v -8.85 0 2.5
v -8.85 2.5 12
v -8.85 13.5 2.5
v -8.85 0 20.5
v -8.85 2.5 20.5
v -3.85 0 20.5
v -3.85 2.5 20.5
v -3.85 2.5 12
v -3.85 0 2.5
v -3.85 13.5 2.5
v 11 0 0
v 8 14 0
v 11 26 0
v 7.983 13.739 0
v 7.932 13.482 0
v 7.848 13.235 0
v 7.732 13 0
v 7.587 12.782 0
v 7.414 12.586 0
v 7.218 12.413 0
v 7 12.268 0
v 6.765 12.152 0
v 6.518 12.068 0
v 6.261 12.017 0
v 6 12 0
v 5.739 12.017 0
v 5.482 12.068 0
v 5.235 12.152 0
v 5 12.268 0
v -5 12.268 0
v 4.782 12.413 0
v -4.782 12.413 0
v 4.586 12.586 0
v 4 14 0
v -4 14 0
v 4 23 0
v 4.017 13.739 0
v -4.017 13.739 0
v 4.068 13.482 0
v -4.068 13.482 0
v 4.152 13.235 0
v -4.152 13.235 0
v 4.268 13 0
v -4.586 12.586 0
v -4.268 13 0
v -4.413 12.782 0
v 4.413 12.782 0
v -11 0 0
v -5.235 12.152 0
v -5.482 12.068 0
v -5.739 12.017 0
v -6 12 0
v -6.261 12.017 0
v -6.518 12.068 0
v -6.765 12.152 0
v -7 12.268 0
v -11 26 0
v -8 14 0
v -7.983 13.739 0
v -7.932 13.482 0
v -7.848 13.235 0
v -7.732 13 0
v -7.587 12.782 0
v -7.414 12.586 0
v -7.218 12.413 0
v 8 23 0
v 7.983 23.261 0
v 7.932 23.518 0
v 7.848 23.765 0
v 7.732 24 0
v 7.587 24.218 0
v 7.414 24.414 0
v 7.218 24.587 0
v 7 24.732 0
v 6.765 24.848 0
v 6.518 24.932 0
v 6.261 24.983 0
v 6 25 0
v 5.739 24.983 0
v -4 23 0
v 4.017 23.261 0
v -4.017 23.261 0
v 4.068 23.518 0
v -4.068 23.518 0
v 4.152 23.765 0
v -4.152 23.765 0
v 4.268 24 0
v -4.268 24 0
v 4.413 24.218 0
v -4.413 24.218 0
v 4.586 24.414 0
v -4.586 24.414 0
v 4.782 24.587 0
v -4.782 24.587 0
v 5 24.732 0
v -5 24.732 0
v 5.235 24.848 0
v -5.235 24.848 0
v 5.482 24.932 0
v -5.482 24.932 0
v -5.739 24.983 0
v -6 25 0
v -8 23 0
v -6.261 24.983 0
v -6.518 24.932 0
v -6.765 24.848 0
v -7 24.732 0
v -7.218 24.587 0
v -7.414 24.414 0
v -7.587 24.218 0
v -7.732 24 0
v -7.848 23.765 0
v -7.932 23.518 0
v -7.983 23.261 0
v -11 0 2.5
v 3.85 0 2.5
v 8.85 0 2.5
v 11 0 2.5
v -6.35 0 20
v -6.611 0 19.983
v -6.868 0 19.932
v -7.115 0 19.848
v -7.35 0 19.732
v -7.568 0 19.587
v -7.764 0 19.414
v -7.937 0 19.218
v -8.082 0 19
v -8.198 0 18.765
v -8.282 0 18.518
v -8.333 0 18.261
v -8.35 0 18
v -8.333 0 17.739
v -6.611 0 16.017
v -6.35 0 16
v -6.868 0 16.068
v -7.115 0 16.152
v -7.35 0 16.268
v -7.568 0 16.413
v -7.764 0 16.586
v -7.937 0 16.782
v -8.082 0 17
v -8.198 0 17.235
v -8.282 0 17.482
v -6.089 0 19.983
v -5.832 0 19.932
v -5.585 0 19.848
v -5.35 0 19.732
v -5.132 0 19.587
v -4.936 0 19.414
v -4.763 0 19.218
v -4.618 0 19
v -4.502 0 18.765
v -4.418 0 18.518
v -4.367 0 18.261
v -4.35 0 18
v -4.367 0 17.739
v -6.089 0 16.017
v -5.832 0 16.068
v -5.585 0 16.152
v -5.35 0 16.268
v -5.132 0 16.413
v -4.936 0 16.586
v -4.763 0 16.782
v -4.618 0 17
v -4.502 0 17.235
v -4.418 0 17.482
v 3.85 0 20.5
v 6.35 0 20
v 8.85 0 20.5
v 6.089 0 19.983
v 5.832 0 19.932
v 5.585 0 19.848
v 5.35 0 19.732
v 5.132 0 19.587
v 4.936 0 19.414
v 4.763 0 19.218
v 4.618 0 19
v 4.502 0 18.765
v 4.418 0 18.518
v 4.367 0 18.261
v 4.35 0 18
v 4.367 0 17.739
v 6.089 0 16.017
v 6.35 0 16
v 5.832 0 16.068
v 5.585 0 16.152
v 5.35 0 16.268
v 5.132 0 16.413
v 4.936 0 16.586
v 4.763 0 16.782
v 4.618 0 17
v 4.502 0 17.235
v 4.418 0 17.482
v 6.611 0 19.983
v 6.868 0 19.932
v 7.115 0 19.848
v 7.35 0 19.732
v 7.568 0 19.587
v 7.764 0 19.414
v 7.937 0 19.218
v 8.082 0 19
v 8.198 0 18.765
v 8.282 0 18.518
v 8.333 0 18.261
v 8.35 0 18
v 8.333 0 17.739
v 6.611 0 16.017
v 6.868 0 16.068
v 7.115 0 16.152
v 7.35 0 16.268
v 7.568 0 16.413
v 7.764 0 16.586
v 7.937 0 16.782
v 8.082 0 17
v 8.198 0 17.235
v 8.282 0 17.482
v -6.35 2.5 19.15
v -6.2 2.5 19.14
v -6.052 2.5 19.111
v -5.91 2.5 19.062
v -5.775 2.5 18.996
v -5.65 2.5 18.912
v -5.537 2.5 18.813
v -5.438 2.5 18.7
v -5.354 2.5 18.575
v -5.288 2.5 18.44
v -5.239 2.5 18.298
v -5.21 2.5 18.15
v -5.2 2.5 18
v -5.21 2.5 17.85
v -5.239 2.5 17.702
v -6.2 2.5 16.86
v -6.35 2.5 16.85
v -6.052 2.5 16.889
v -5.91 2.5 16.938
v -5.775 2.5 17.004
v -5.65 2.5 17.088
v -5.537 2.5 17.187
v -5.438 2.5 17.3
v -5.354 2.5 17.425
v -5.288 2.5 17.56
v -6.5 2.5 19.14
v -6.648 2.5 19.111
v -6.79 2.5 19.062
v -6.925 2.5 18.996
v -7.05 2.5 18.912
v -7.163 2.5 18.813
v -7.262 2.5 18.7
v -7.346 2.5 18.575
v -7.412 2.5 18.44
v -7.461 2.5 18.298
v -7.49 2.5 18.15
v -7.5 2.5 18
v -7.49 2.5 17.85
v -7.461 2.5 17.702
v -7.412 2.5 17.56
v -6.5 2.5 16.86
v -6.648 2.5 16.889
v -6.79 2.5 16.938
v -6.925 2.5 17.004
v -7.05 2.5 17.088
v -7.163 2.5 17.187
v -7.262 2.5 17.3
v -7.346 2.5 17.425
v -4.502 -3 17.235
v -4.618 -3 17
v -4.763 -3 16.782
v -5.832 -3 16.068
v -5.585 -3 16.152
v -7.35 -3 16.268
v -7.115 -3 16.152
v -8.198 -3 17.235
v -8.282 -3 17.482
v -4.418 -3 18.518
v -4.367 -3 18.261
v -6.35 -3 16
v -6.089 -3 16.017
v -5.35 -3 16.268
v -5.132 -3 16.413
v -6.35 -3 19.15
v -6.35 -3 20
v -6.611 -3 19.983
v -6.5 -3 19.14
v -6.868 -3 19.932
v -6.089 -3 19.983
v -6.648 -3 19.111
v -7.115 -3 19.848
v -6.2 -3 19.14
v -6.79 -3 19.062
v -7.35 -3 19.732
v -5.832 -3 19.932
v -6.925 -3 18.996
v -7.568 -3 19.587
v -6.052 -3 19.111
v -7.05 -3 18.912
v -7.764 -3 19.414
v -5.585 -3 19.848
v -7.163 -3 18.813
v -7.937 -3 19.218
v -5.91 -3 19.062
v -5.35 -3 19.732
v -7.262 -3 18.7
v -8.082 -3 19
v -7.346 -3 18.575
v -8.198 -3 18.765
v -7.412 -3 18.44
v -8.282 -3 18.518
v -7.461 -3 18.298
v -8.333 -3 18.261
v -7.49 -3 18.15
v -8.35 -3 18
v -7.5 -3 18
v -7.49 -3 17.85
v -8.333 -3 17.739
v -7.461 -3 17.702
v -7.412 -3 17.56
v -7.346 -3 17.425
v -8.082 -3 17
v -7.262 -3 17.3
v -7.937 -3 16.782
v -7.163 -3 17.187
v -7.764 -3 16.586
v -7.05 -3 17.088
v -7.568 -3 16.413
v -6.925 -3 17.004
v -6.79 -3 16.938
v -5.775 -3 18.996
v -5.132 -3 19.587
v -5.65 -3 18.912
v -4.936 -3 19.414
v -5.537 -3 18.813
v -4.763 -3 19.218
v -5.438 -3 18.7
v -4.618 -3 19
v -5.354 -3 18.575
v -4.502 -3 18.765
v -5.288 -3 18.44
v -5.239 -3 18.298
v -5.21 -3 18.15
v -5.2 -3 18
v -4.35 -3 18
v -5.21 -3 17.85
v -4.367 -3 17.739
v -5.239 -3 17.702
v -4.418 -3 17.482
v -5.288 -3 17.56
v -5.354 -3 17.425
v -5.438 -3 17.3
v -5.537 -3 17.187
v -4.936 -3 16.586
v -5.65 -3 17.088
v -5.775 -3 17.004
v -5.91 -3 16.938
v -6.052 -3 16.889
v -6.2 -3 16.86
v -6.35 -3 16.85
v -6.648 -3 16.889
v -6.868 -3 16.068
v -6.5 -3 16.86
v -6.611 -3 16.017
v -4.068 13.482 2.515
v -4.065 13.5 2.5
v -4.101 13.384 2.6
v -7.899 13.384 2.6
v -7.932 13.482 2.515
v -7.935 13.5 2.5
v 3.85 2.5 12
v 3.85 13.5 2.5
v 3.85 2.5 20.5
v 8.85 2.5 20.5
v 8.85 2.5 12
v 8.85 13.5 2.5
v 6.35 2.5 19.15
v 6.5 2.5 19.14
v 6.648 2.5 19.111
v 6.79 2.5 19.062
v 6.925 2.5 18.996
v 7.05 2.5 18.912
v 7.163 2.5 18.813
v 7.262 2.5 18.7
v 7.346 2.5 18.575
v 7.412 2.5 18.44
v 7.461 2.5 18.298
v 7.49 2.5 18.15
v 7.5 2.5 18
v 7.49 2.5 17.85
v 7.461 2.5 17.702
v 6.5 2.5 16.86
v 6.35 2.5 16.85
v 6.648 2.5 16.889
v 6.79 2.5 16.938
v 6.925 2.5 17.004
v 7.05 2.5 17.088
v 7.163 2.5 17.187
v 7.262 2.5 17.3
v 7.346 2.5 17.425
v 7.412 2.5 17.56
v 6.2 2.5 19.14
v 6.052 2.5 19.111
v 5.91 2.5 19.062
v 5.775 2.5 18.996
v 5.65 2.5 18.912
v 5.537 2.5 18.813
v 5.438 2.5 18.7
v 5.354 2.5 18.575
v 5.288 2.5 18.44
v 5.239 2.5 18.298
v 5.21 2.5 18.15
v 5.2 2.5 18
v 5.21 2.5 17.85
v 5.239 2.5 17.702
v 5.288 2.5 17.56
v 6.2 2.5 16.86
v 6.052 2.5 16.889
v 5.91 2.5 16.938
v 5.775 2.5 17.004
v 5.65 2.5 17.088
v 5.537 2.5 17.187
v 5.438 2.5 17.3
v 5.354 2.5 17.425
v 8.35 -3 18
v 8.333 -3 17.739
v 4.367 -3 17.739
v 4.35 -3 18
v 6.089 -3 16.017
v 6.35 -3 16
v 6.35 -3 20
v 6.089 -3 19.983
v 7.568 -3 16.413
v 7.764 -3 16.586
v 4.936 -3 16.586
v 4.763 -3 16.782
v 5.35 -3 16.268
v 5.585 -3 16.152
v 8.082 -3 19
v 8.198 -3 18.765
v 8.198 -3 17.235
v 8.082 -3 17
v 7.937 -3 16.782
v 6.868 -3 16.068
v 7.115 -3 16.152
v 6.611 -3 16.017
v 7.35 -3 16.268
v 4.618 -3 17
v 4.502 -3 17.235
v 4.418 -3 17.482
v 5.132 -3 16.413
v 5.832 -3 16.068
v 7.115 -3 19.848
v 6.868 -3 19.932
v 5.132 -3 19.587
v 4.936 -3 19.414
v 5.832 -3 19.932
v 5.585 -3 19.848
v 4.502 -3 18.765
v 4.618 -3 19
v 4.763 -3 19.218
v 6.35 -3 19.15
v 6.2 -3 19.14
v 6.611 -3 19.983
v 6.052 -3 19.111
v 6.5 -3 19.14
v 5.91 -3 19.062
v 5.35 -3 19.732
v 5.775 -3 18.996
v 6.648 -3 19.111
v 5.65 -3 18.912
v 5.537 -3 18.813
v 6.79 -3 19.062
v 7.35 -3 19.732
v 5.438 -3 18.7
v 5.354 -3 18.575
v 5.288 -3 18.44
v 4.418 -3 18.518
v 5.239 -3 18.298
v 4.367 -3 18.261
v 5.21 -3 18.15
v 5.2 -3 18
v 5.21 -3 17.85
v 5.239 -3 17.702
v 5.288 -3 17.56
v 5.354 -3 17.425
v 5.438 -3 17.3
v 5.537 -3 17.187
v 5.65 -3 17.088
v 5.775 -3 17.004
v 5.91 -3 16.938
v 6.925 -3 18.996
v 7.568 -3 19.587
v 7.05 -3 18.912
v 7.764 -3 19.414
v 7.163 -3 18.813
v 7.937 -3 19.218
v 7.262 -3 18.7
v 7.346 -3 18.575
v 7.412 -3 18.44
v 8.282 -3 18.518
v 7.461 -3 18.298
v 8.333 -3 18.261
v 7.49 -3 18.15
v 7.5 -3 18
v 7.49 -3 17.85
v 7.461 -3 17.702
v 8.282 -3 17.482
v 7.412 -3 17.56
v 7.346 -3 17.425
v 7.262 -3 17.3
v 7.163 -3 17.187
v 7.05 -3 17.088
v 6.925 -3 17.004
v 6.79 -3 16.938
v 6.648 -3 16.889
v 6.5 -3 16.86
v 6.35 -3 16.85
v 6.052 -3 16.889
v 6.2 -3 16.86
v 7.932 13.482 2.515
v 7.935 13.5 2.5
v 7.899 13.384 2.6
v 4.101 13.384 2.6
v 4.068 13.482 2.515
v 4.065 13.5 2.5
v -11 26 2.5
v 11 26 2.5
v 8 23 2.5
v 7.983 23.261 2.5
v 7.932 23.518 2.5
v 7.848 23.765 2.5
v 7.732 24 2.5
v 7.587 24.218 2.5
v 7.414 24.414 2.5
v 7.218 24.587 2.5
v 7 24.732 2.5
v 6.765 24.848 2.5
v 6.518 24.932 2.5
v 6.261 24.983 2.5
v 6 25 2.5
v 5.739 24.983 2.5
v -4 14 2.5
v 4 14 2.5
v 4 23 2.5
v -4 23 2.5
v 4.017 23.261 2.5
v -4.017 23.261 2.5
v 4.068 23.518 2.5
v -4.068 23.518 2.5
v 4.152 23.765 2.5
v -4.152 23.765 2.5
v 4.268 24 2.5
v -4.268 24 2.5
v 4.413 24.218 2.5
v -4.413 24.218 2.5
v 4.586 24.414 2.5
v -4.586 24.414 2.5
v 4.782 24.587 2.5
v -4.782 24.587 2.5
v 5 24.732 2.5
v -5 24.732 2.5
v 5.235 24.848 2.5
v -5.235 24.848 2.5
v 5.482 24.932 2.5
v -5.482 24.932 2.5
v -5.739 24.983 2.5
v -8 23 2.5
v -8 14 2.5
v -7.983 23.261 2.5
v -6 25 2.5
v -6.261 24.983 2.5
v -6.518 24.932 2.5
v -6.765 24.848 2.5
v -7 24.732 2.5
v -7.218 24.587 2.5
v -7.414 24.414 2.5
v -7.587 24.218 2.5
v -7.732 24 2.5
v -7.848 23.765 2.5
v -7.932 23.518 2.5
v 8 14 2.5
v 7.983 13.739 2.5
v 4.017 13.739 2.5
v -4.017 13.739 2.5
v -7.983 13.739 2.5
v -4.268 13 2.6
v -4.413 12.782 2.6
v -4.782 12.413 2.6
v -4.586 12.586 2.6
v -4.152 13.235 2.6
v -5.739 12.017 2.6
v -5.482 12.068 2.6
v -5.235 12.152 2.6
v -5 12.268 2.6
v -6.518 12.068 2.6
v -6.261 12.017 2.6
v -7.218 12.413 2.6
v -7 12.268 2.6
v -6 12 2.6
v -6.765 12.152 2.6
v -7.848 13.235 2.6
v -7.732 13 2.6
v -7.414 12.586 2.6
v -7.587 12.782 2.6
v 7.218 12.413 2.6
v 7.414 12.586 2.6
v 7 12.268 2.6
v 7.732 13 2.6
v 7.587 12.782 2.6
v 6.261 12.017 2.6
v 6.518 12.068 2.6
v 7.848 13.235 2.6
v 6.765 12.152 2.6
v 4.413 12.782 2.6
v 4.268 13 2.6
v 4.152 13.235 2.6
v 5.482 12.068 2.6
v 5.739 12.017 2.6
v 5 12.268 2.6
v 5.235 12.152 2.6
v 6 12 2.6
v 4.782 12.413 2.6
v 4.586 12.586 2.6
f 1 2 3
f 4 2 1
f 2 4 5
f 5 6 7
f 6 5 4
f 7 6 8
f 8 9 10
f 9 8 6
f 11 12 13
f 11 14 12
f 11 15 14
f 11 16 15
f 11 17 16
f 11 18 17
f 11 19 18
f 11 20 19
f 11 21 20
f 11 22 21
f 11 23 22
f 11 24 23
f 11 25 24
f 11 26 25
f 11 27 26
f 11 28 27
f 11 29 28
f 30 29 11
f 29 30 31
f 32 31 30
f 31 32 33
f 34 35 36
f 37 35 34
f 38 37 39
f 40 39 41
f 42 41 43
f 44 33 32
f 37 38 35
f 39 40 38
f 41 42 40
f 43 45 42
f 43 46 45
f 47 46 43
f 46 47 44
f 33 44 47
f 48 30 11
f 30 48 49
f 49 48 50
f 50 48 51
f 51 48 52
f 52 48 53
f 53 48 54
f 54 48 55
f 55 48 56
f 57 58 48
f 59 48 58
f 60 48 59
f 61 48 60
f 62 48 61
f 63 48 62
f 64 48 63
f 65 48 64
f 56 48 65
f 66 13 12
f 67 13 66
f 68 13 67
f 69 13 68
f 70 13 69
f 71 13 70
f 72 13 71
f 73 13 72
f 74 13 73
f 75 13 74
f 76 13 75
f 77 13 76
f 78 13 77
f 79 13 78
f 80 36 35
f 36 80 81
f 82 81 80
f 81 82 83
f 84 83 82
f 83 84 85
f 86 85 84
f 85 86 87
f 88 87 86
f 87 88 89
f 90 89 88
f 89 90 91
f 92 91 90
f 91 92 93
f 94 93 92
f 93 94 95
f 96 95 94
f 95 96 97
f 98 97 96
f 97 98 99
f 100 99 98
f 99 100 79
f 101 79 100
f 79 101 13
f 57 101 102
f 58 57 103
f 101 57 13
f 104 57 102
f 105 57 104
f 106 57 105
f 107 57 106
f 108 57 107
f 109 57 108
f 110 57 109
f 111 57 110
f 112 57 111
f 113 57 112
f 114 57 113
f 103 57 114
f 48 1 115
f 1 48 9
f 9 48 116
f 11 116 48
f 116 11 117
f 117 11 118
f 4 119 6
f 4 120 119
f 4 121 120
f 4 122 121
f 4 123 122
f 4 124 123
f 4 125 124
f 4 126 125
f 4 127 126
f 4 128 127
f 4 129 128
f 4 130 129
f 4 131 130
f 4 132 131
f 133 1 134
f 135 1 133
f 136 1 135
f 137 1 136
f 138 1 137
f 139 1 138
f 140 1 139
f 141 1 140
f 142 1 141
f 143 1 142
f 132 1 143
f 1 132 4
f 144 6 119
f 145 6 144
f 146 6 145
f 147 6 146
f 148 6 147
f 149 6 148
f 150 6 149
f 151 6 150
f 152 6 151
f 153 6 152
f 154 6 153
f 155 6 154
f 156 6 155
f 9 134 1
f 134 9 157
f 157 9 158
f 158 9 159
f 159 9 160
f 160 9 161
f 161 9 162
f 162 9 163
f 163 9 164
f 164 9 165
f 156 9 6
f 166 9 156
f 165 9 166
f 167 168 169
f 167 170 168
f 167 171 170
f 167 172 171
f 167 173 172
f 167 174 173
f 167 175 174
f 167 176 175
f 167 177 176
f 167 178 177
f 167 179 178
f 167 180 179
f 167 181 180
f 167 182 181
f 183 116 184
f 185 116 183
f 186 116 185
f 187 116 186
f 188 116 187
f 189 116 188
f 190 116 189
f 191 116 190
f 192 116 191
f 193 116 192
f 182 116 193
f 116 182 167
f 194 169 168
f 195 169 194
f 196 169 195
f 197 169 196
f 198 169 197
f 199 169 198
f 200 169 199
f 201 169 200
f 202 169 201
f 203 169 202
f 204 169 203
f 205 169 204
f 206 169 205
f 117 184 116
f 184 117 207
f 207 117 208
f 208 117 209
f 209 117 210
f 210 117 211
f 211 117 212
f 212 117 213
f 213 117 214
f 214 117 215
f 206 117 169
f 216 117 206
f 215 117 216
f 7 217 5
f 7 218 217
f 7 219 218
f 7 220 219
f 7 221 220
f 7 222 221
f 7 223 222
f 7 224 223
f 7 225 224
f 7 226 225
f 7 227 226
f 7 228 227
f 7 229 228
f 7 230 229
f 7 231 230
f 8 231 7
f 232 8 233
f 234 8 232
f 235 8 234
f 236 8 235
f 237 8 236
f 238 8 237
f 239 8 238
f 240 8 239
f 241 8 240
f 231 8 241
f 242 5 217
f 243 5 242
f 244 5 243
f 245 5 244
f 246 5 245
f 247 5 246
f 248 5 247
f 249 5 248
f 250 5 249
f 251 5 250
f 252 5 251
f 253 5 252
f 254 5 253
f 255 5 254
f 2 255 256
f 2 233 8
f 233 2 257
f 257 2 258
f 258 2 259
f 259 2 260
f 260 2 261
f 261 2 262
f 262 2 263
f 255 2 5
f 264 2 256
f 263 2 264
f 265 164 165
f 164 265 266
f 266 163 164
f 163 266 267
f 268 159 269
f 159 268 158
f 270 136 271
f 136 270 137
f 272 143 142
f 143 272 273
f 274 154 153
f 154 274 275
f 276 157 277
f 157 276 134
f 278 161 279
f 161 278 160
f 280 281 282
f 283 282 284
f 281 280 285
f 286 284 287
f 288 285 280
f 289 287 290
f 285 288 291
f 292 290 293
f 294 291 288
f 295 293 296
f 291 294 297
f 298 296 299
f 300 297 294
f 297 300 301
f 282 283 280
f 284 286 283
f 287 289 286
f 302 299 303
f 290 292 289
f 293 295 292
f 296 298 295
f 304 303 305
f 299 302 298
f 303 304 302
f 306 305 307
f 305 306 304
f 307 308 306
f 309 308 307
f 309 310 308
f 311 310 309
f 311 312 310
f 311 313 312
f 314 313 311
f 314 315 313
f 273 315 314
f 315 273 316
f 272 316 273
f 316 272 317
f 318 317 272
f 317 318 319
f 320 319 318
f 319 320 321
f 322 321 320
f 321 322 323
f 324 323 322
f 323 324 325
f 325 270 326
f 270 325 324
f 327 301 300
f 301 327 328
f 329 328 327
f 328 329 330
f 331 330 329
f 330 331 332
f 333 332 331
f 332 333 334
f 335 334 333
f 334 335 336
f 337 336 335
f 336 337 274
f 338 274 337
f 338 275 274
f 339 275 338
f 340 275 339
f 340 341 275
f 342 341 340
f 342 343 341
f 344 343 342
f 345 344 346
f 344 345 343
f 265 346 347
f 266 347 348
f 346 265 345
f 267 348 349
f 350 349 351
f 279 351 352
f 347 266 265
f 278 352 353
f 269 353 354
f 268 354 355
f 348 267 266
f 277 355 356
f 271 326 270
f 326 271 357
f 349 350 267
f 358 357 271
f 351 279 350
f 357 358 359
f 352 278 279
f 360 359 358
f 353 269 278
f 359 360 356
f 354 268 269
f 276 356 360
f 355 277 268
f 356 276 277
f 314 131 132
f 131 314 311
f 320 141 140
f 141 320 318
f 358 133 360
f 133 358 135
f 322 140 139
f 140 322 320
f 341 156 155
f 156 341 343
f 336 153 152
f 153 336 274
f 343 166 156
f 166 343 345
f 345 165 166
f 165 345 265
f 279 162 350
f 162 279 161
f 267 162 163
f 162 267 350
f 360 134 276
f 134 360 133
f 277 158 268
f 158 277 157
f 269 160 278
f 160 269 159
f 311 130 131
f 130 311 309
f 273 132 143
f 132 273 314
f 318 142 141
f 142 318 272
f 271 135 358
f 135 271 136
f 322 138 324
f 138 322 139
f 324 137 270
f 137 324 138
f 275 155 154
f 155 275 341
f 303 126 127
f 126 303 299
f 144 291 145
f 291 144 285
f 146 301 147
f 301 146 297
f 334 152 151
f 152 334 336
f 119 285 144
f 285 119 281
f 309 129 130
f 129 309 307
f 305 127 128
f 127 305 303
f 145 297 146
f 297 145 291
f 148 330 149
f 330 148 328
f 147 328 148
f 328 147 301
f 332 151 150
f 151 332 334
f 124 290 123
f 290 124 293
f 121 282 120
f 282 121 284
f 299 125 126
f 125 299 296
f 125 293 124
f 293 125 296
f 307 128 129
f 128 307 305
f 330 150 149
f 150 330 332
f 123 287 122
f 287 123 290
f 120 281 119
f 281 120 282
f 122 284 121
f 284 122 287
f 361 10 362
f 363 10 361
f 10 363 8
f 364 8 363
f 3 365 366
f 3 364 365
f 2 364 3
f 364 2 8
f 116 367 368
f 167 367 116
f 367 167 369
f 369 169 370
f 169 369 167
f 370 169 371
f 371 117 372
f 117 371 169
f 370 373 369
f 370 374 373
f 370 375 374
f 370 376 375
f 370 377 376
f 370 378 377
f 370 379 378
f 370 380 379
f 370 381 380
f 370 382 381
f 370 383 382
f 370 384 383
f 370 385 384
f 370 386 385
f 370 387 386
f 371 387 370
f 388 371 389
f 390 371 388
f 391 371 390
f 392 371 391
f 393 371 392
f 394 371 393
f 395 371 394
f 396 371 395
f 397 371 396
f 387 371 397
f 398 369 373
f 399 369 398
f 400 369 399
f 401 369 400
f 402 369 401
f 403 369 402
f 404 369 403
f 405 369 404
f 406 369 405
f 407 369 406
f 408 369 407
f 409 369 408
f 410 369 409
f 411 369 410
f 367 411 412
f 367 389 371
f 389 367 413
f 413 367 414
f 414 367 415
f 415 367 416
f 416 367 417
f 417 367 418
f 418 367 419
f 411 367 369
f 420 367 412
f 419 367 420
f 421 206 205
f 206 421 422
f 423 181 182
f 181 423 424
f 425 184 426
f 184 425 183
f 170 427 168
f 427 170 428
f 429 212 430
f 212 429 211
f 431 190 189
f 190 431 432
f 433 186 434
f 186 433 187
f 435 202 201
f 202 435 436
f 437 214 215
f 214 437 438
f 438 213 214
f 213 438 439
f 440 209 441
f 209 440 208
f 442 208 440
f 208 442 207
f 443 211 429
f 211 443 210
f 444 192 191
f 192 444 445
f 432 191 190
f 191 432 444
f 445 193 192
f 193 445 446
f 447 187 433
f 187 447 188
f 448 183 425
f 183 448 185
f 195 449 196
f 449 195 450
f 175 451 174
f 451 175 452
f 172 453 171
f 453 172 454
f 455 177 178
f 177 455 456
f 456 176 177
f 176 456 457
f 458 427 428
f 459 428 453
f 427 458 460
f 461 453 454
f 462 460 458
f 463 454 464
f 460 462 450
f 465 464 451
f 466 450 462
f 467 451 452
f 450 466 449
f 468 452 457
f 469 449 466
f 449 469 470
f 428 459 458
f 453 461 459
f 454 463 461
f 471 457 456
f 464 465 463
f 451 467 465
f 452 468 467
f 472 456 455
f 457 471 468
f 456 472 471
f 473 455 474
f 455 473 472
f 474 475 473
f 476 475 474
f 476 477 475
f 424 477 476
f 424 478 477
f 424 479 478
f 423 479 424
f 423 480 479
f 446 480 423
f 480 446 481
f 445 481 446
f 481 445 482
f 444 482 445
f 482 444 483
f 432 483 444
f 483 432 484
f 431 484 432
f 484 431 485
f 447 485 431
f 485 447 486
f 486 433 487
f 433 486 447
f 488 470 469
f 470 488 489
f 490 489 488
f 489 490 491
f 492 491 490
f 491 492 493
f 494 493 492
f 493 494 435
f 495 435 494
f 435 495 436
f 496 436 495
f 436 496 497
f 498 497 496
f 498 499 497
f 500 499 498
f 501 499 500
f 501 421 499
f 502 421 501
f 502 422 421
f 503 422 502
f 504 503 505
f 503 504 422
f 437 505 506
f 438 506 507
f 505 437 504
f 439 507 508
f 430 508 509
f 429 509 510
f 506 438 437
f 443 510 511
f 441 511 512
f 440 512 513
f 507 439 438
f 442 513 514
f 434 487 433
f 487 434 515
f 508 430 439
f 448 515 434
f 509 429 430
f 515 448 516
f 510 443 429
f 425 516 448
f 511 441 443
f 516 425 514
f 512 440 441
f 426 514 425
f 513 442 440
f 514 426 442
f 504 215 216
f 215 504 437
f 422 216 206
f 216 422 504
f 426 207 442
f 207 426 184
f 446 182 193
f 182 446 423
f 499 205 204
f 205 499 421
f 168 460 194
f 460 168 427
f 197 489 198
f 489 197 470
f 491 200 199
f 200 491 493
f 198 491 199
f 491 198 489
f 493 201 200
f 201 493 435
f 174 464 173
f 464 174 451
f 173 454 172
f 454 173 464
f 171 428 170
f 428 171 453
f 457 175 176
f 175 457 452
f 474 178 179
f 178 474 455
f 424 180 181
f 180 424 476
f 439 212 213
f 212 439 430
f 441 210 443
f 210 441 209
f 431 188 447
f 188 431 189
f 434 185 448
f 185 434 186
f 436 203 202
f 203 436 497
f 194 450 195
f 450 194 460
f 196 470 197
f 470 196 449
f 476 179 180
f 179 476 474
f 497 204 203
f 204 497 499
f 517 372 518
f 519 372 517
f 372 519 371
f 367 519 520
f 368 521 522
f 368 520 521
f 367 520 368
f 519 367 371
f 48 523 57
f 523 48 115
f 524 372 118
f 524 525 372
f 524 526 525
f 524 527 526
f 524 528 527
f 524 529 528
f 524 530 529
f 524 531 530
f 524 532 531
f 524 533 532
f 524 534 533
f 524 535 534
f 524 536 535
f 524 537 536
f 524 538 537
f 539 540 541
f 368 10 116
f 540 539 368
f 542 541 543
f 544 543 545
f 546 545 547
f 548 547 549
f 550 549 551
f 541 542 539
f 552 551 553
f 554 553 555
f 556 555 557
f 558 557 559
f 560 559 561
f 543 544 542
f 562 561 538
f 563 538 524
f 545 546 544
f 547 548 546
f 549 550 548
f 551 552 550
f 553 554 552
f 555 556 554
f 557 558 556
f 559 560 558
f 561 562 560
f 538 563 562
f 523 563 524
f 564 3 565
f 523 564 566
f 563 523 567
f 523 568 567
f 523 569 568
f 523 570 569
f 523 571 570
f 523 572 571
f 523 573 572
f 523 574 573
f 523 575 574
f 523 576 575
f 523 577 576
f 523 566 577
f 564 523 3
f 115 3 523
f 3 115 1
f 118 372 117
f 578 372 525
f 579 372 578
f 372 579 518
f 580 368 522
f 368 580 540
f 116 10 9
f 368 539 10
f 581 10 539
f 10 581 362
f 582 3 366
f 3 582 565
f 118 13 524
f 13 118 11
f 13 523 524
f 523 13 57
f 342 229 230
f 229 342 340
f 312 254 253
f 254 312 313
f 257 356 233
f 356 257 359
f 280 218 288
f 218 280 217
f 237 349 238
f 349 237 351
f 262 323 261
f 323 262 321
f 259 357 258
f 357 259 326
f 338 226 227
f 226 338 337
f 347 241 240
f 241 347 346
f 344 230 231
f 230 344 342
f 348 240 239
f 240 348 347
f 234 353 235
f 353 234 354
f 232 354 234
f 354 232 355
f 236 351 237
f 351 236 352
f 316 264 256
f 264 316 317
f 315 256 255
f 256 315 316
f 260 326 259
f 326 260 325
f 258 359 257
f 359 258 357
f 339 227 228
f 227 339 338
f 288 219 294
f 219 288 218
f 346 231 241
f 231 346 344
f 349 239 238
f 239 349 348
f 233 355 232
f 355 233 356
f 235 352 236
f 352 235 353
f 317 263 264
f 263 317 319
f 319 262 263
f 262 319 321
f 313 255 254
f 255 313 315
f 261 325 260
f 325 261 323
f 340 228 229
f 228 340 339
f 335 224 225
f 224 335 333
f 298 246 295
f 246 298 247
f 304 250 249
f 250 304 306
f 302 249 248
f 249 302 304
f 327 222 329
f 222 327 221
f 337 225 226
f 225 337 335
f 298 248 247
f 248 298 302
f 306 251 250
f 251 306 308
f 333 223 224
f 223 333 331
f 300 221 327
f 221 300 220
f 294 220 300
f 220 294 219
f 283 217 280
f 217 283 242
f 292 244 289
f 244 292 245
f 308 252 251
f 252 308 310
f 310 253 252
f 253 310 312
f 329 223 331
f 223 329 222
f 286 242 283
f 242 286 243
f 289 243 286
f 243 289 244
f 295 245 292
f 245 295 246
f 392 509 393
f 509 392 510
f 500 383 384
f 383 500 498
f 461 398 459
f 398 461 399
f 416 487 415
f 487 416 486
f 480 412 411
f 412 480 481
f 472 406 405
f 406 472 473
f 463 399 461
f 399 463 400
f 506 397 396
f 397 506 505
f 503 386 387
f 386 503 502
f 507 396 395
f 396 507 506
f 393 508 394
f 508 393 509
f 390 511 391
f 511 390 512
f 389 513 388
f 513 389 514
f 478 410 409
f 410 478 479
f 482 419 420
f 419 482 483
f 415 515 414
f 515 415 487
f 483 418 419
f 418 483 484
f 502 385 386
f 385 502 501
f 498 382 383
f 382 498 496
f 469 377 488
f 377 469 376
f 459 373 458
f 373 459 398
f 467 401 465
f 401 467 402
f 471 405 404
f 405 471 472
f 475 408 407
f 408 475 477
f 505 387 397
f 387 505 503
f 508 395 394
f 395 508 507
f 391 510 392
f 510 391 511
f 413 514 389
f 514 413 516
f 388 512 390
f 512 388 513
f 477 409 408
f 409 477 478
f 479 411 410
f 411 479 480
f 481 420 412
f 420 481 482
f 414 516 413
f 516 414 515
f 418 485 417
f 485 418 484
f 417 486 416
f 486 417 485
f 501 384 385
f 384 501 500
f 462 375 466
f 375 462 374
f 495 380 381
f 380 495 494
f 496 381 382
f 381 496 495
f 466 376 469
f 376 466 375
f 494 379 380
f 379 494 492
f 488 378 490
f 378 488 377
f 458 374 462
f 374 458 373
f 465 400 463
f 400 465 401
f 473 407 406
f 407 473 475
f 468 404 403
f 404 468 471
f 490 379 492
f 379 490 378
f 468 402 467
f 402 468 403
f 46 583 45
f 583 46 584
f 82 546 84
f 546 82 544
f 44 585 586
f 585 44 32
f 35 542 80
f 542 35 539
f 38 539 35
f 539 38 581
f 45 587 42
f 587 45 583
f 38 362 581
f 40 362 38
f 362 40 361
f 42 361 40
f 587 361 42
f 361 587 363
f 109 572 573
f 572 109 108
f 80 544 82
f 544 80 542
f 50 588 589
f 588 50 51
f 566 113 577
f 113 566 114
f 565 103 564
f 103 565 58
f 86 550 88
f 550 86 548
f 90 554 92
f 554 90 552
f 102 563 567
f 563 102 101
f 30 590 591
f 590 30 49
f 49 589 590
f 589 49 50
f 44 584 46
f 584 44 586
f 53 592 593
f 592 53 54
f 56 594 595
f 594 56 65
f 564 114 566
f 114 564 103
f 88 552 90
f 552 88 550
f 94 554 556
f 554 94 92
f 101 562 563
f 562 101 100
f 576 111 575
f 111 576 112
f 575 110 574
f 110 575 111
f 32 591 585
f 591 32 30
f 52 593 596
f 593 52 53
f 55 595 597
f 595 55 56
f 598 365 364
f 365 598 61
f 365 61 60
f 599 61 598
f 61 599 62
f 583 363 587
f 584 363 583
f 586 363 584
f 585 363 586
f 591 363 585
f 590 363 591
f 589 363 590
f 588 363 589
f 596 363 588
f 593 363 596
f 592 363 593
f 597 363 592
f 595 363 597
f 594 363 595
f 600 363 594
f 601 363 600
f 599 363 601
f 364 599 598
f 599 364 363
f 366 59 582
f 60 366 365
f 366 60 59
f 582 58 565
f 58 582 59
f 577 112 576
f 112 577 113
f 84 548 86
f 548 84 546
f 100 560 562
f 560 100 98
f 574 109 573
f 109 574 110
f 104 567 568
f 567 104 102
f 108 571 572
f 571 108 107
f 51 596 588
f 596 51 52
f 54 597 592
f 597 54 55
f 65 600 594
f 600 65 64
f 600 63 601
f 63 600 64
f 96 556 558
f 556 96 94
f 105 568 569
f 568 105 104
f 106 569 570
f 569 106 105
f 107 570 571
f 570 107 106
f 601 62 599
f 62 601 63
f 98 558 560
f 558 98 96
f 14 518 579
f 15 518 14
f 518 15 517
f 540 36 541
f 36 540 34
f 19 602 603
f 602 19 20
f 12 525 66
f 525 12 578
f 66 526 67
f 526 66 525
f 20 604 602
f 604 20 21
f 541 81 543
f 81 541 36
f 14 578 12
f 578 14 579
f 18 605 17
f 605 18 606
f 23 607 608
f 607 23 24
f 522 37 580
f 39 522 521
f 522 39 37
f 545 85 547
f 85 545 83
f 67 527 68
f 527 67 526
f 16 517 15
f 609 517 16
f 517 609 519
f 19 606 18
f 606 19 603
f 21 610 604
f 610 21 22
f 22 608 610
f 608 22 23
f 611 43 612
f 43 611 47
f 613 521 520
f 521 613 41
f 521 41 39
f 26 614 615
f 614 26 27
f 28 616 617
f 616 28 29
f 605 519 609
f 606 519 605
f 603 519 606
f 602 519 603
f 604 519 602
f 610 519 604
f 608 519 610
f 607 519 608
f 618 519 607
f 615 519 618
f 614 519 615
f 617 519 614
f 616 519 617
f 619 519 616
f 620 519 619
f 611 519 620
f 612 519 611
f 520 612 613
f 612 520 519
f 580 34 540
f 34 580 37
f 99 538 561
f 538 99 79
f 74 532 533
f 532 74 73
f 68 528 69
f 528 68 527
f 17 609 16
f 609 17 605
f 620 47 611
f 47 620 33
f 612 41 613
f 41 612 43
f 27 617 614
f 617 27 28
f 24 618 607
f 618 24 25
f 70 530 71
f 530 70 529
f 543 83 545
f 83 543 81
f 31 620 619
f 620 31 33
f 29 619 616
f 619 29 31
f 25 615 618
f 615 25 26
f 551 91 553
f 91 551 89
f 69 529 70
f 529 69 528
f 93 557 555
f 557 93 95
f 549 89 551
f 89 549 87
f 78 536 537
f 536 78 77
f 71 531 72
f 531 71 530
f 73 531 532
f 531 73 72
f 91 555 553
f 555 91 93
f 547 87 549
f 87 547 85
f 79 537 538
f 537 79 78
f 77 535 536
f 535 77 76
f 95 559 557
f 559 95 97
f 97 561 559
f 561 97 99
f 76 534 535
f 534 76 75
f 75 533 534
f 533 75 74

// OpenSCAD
// Pololu3418 VL53L7CX carrier, landscape orientation, positive M2 retention.
// mm. Local front=-Y; base bottom Z=0. PCB bottom15.5, rear Y=-3.
// 17.8mm board dimension runs X; 12.7mm dimension runs Z.
$fn=48;
plate=2.5;
hole_pitch=12.7; // official 0.5 inch mounting centers
hole_z=18; // PCB lower edge15.5 + documented2.5 hole offset
boss_depth=3;
hole=2.3;
module along_y(d,h) { rotate([-90,0,0]) cylinder(d=d,h=h); }
module forward_depth_bracket() {
 difference() {
  union() {
   translate([-11,0,0]) cube([22,26,plate]);
   for(x=[-hole_pitch/2,hole_pitch/2]) {
    translate([x-2.5,0,0]) cube([5,plate,hole_z+2.5]);
    translate([x,-boss_depth,hole_z]) along_y(4,boss_depth+0.1);
    hull() {
     translate([x-2.5,0,0]) cube([5,plate,12]);
     translate([x-2.5,11,0]) cube([5,plate,plate]);
    }
   }
  }
  for(x=[-hole_pitch/2,hole_pitch/2])
   translate([x,-boss_depth-0.1,hole_z]) along_y(hole,boss_depth+plate+0.2);
  for(x=[-6,6]) hull()
   for(y=[14,23])
    translate([x,y,-0.1]) cylinder(d=4,h=plate+0.2);
 }
}
assert(hole_pitch==12.7 && hole>2 && hole<4);
assert(hole_z>12+hole/2);
forward_depth_bracket();
